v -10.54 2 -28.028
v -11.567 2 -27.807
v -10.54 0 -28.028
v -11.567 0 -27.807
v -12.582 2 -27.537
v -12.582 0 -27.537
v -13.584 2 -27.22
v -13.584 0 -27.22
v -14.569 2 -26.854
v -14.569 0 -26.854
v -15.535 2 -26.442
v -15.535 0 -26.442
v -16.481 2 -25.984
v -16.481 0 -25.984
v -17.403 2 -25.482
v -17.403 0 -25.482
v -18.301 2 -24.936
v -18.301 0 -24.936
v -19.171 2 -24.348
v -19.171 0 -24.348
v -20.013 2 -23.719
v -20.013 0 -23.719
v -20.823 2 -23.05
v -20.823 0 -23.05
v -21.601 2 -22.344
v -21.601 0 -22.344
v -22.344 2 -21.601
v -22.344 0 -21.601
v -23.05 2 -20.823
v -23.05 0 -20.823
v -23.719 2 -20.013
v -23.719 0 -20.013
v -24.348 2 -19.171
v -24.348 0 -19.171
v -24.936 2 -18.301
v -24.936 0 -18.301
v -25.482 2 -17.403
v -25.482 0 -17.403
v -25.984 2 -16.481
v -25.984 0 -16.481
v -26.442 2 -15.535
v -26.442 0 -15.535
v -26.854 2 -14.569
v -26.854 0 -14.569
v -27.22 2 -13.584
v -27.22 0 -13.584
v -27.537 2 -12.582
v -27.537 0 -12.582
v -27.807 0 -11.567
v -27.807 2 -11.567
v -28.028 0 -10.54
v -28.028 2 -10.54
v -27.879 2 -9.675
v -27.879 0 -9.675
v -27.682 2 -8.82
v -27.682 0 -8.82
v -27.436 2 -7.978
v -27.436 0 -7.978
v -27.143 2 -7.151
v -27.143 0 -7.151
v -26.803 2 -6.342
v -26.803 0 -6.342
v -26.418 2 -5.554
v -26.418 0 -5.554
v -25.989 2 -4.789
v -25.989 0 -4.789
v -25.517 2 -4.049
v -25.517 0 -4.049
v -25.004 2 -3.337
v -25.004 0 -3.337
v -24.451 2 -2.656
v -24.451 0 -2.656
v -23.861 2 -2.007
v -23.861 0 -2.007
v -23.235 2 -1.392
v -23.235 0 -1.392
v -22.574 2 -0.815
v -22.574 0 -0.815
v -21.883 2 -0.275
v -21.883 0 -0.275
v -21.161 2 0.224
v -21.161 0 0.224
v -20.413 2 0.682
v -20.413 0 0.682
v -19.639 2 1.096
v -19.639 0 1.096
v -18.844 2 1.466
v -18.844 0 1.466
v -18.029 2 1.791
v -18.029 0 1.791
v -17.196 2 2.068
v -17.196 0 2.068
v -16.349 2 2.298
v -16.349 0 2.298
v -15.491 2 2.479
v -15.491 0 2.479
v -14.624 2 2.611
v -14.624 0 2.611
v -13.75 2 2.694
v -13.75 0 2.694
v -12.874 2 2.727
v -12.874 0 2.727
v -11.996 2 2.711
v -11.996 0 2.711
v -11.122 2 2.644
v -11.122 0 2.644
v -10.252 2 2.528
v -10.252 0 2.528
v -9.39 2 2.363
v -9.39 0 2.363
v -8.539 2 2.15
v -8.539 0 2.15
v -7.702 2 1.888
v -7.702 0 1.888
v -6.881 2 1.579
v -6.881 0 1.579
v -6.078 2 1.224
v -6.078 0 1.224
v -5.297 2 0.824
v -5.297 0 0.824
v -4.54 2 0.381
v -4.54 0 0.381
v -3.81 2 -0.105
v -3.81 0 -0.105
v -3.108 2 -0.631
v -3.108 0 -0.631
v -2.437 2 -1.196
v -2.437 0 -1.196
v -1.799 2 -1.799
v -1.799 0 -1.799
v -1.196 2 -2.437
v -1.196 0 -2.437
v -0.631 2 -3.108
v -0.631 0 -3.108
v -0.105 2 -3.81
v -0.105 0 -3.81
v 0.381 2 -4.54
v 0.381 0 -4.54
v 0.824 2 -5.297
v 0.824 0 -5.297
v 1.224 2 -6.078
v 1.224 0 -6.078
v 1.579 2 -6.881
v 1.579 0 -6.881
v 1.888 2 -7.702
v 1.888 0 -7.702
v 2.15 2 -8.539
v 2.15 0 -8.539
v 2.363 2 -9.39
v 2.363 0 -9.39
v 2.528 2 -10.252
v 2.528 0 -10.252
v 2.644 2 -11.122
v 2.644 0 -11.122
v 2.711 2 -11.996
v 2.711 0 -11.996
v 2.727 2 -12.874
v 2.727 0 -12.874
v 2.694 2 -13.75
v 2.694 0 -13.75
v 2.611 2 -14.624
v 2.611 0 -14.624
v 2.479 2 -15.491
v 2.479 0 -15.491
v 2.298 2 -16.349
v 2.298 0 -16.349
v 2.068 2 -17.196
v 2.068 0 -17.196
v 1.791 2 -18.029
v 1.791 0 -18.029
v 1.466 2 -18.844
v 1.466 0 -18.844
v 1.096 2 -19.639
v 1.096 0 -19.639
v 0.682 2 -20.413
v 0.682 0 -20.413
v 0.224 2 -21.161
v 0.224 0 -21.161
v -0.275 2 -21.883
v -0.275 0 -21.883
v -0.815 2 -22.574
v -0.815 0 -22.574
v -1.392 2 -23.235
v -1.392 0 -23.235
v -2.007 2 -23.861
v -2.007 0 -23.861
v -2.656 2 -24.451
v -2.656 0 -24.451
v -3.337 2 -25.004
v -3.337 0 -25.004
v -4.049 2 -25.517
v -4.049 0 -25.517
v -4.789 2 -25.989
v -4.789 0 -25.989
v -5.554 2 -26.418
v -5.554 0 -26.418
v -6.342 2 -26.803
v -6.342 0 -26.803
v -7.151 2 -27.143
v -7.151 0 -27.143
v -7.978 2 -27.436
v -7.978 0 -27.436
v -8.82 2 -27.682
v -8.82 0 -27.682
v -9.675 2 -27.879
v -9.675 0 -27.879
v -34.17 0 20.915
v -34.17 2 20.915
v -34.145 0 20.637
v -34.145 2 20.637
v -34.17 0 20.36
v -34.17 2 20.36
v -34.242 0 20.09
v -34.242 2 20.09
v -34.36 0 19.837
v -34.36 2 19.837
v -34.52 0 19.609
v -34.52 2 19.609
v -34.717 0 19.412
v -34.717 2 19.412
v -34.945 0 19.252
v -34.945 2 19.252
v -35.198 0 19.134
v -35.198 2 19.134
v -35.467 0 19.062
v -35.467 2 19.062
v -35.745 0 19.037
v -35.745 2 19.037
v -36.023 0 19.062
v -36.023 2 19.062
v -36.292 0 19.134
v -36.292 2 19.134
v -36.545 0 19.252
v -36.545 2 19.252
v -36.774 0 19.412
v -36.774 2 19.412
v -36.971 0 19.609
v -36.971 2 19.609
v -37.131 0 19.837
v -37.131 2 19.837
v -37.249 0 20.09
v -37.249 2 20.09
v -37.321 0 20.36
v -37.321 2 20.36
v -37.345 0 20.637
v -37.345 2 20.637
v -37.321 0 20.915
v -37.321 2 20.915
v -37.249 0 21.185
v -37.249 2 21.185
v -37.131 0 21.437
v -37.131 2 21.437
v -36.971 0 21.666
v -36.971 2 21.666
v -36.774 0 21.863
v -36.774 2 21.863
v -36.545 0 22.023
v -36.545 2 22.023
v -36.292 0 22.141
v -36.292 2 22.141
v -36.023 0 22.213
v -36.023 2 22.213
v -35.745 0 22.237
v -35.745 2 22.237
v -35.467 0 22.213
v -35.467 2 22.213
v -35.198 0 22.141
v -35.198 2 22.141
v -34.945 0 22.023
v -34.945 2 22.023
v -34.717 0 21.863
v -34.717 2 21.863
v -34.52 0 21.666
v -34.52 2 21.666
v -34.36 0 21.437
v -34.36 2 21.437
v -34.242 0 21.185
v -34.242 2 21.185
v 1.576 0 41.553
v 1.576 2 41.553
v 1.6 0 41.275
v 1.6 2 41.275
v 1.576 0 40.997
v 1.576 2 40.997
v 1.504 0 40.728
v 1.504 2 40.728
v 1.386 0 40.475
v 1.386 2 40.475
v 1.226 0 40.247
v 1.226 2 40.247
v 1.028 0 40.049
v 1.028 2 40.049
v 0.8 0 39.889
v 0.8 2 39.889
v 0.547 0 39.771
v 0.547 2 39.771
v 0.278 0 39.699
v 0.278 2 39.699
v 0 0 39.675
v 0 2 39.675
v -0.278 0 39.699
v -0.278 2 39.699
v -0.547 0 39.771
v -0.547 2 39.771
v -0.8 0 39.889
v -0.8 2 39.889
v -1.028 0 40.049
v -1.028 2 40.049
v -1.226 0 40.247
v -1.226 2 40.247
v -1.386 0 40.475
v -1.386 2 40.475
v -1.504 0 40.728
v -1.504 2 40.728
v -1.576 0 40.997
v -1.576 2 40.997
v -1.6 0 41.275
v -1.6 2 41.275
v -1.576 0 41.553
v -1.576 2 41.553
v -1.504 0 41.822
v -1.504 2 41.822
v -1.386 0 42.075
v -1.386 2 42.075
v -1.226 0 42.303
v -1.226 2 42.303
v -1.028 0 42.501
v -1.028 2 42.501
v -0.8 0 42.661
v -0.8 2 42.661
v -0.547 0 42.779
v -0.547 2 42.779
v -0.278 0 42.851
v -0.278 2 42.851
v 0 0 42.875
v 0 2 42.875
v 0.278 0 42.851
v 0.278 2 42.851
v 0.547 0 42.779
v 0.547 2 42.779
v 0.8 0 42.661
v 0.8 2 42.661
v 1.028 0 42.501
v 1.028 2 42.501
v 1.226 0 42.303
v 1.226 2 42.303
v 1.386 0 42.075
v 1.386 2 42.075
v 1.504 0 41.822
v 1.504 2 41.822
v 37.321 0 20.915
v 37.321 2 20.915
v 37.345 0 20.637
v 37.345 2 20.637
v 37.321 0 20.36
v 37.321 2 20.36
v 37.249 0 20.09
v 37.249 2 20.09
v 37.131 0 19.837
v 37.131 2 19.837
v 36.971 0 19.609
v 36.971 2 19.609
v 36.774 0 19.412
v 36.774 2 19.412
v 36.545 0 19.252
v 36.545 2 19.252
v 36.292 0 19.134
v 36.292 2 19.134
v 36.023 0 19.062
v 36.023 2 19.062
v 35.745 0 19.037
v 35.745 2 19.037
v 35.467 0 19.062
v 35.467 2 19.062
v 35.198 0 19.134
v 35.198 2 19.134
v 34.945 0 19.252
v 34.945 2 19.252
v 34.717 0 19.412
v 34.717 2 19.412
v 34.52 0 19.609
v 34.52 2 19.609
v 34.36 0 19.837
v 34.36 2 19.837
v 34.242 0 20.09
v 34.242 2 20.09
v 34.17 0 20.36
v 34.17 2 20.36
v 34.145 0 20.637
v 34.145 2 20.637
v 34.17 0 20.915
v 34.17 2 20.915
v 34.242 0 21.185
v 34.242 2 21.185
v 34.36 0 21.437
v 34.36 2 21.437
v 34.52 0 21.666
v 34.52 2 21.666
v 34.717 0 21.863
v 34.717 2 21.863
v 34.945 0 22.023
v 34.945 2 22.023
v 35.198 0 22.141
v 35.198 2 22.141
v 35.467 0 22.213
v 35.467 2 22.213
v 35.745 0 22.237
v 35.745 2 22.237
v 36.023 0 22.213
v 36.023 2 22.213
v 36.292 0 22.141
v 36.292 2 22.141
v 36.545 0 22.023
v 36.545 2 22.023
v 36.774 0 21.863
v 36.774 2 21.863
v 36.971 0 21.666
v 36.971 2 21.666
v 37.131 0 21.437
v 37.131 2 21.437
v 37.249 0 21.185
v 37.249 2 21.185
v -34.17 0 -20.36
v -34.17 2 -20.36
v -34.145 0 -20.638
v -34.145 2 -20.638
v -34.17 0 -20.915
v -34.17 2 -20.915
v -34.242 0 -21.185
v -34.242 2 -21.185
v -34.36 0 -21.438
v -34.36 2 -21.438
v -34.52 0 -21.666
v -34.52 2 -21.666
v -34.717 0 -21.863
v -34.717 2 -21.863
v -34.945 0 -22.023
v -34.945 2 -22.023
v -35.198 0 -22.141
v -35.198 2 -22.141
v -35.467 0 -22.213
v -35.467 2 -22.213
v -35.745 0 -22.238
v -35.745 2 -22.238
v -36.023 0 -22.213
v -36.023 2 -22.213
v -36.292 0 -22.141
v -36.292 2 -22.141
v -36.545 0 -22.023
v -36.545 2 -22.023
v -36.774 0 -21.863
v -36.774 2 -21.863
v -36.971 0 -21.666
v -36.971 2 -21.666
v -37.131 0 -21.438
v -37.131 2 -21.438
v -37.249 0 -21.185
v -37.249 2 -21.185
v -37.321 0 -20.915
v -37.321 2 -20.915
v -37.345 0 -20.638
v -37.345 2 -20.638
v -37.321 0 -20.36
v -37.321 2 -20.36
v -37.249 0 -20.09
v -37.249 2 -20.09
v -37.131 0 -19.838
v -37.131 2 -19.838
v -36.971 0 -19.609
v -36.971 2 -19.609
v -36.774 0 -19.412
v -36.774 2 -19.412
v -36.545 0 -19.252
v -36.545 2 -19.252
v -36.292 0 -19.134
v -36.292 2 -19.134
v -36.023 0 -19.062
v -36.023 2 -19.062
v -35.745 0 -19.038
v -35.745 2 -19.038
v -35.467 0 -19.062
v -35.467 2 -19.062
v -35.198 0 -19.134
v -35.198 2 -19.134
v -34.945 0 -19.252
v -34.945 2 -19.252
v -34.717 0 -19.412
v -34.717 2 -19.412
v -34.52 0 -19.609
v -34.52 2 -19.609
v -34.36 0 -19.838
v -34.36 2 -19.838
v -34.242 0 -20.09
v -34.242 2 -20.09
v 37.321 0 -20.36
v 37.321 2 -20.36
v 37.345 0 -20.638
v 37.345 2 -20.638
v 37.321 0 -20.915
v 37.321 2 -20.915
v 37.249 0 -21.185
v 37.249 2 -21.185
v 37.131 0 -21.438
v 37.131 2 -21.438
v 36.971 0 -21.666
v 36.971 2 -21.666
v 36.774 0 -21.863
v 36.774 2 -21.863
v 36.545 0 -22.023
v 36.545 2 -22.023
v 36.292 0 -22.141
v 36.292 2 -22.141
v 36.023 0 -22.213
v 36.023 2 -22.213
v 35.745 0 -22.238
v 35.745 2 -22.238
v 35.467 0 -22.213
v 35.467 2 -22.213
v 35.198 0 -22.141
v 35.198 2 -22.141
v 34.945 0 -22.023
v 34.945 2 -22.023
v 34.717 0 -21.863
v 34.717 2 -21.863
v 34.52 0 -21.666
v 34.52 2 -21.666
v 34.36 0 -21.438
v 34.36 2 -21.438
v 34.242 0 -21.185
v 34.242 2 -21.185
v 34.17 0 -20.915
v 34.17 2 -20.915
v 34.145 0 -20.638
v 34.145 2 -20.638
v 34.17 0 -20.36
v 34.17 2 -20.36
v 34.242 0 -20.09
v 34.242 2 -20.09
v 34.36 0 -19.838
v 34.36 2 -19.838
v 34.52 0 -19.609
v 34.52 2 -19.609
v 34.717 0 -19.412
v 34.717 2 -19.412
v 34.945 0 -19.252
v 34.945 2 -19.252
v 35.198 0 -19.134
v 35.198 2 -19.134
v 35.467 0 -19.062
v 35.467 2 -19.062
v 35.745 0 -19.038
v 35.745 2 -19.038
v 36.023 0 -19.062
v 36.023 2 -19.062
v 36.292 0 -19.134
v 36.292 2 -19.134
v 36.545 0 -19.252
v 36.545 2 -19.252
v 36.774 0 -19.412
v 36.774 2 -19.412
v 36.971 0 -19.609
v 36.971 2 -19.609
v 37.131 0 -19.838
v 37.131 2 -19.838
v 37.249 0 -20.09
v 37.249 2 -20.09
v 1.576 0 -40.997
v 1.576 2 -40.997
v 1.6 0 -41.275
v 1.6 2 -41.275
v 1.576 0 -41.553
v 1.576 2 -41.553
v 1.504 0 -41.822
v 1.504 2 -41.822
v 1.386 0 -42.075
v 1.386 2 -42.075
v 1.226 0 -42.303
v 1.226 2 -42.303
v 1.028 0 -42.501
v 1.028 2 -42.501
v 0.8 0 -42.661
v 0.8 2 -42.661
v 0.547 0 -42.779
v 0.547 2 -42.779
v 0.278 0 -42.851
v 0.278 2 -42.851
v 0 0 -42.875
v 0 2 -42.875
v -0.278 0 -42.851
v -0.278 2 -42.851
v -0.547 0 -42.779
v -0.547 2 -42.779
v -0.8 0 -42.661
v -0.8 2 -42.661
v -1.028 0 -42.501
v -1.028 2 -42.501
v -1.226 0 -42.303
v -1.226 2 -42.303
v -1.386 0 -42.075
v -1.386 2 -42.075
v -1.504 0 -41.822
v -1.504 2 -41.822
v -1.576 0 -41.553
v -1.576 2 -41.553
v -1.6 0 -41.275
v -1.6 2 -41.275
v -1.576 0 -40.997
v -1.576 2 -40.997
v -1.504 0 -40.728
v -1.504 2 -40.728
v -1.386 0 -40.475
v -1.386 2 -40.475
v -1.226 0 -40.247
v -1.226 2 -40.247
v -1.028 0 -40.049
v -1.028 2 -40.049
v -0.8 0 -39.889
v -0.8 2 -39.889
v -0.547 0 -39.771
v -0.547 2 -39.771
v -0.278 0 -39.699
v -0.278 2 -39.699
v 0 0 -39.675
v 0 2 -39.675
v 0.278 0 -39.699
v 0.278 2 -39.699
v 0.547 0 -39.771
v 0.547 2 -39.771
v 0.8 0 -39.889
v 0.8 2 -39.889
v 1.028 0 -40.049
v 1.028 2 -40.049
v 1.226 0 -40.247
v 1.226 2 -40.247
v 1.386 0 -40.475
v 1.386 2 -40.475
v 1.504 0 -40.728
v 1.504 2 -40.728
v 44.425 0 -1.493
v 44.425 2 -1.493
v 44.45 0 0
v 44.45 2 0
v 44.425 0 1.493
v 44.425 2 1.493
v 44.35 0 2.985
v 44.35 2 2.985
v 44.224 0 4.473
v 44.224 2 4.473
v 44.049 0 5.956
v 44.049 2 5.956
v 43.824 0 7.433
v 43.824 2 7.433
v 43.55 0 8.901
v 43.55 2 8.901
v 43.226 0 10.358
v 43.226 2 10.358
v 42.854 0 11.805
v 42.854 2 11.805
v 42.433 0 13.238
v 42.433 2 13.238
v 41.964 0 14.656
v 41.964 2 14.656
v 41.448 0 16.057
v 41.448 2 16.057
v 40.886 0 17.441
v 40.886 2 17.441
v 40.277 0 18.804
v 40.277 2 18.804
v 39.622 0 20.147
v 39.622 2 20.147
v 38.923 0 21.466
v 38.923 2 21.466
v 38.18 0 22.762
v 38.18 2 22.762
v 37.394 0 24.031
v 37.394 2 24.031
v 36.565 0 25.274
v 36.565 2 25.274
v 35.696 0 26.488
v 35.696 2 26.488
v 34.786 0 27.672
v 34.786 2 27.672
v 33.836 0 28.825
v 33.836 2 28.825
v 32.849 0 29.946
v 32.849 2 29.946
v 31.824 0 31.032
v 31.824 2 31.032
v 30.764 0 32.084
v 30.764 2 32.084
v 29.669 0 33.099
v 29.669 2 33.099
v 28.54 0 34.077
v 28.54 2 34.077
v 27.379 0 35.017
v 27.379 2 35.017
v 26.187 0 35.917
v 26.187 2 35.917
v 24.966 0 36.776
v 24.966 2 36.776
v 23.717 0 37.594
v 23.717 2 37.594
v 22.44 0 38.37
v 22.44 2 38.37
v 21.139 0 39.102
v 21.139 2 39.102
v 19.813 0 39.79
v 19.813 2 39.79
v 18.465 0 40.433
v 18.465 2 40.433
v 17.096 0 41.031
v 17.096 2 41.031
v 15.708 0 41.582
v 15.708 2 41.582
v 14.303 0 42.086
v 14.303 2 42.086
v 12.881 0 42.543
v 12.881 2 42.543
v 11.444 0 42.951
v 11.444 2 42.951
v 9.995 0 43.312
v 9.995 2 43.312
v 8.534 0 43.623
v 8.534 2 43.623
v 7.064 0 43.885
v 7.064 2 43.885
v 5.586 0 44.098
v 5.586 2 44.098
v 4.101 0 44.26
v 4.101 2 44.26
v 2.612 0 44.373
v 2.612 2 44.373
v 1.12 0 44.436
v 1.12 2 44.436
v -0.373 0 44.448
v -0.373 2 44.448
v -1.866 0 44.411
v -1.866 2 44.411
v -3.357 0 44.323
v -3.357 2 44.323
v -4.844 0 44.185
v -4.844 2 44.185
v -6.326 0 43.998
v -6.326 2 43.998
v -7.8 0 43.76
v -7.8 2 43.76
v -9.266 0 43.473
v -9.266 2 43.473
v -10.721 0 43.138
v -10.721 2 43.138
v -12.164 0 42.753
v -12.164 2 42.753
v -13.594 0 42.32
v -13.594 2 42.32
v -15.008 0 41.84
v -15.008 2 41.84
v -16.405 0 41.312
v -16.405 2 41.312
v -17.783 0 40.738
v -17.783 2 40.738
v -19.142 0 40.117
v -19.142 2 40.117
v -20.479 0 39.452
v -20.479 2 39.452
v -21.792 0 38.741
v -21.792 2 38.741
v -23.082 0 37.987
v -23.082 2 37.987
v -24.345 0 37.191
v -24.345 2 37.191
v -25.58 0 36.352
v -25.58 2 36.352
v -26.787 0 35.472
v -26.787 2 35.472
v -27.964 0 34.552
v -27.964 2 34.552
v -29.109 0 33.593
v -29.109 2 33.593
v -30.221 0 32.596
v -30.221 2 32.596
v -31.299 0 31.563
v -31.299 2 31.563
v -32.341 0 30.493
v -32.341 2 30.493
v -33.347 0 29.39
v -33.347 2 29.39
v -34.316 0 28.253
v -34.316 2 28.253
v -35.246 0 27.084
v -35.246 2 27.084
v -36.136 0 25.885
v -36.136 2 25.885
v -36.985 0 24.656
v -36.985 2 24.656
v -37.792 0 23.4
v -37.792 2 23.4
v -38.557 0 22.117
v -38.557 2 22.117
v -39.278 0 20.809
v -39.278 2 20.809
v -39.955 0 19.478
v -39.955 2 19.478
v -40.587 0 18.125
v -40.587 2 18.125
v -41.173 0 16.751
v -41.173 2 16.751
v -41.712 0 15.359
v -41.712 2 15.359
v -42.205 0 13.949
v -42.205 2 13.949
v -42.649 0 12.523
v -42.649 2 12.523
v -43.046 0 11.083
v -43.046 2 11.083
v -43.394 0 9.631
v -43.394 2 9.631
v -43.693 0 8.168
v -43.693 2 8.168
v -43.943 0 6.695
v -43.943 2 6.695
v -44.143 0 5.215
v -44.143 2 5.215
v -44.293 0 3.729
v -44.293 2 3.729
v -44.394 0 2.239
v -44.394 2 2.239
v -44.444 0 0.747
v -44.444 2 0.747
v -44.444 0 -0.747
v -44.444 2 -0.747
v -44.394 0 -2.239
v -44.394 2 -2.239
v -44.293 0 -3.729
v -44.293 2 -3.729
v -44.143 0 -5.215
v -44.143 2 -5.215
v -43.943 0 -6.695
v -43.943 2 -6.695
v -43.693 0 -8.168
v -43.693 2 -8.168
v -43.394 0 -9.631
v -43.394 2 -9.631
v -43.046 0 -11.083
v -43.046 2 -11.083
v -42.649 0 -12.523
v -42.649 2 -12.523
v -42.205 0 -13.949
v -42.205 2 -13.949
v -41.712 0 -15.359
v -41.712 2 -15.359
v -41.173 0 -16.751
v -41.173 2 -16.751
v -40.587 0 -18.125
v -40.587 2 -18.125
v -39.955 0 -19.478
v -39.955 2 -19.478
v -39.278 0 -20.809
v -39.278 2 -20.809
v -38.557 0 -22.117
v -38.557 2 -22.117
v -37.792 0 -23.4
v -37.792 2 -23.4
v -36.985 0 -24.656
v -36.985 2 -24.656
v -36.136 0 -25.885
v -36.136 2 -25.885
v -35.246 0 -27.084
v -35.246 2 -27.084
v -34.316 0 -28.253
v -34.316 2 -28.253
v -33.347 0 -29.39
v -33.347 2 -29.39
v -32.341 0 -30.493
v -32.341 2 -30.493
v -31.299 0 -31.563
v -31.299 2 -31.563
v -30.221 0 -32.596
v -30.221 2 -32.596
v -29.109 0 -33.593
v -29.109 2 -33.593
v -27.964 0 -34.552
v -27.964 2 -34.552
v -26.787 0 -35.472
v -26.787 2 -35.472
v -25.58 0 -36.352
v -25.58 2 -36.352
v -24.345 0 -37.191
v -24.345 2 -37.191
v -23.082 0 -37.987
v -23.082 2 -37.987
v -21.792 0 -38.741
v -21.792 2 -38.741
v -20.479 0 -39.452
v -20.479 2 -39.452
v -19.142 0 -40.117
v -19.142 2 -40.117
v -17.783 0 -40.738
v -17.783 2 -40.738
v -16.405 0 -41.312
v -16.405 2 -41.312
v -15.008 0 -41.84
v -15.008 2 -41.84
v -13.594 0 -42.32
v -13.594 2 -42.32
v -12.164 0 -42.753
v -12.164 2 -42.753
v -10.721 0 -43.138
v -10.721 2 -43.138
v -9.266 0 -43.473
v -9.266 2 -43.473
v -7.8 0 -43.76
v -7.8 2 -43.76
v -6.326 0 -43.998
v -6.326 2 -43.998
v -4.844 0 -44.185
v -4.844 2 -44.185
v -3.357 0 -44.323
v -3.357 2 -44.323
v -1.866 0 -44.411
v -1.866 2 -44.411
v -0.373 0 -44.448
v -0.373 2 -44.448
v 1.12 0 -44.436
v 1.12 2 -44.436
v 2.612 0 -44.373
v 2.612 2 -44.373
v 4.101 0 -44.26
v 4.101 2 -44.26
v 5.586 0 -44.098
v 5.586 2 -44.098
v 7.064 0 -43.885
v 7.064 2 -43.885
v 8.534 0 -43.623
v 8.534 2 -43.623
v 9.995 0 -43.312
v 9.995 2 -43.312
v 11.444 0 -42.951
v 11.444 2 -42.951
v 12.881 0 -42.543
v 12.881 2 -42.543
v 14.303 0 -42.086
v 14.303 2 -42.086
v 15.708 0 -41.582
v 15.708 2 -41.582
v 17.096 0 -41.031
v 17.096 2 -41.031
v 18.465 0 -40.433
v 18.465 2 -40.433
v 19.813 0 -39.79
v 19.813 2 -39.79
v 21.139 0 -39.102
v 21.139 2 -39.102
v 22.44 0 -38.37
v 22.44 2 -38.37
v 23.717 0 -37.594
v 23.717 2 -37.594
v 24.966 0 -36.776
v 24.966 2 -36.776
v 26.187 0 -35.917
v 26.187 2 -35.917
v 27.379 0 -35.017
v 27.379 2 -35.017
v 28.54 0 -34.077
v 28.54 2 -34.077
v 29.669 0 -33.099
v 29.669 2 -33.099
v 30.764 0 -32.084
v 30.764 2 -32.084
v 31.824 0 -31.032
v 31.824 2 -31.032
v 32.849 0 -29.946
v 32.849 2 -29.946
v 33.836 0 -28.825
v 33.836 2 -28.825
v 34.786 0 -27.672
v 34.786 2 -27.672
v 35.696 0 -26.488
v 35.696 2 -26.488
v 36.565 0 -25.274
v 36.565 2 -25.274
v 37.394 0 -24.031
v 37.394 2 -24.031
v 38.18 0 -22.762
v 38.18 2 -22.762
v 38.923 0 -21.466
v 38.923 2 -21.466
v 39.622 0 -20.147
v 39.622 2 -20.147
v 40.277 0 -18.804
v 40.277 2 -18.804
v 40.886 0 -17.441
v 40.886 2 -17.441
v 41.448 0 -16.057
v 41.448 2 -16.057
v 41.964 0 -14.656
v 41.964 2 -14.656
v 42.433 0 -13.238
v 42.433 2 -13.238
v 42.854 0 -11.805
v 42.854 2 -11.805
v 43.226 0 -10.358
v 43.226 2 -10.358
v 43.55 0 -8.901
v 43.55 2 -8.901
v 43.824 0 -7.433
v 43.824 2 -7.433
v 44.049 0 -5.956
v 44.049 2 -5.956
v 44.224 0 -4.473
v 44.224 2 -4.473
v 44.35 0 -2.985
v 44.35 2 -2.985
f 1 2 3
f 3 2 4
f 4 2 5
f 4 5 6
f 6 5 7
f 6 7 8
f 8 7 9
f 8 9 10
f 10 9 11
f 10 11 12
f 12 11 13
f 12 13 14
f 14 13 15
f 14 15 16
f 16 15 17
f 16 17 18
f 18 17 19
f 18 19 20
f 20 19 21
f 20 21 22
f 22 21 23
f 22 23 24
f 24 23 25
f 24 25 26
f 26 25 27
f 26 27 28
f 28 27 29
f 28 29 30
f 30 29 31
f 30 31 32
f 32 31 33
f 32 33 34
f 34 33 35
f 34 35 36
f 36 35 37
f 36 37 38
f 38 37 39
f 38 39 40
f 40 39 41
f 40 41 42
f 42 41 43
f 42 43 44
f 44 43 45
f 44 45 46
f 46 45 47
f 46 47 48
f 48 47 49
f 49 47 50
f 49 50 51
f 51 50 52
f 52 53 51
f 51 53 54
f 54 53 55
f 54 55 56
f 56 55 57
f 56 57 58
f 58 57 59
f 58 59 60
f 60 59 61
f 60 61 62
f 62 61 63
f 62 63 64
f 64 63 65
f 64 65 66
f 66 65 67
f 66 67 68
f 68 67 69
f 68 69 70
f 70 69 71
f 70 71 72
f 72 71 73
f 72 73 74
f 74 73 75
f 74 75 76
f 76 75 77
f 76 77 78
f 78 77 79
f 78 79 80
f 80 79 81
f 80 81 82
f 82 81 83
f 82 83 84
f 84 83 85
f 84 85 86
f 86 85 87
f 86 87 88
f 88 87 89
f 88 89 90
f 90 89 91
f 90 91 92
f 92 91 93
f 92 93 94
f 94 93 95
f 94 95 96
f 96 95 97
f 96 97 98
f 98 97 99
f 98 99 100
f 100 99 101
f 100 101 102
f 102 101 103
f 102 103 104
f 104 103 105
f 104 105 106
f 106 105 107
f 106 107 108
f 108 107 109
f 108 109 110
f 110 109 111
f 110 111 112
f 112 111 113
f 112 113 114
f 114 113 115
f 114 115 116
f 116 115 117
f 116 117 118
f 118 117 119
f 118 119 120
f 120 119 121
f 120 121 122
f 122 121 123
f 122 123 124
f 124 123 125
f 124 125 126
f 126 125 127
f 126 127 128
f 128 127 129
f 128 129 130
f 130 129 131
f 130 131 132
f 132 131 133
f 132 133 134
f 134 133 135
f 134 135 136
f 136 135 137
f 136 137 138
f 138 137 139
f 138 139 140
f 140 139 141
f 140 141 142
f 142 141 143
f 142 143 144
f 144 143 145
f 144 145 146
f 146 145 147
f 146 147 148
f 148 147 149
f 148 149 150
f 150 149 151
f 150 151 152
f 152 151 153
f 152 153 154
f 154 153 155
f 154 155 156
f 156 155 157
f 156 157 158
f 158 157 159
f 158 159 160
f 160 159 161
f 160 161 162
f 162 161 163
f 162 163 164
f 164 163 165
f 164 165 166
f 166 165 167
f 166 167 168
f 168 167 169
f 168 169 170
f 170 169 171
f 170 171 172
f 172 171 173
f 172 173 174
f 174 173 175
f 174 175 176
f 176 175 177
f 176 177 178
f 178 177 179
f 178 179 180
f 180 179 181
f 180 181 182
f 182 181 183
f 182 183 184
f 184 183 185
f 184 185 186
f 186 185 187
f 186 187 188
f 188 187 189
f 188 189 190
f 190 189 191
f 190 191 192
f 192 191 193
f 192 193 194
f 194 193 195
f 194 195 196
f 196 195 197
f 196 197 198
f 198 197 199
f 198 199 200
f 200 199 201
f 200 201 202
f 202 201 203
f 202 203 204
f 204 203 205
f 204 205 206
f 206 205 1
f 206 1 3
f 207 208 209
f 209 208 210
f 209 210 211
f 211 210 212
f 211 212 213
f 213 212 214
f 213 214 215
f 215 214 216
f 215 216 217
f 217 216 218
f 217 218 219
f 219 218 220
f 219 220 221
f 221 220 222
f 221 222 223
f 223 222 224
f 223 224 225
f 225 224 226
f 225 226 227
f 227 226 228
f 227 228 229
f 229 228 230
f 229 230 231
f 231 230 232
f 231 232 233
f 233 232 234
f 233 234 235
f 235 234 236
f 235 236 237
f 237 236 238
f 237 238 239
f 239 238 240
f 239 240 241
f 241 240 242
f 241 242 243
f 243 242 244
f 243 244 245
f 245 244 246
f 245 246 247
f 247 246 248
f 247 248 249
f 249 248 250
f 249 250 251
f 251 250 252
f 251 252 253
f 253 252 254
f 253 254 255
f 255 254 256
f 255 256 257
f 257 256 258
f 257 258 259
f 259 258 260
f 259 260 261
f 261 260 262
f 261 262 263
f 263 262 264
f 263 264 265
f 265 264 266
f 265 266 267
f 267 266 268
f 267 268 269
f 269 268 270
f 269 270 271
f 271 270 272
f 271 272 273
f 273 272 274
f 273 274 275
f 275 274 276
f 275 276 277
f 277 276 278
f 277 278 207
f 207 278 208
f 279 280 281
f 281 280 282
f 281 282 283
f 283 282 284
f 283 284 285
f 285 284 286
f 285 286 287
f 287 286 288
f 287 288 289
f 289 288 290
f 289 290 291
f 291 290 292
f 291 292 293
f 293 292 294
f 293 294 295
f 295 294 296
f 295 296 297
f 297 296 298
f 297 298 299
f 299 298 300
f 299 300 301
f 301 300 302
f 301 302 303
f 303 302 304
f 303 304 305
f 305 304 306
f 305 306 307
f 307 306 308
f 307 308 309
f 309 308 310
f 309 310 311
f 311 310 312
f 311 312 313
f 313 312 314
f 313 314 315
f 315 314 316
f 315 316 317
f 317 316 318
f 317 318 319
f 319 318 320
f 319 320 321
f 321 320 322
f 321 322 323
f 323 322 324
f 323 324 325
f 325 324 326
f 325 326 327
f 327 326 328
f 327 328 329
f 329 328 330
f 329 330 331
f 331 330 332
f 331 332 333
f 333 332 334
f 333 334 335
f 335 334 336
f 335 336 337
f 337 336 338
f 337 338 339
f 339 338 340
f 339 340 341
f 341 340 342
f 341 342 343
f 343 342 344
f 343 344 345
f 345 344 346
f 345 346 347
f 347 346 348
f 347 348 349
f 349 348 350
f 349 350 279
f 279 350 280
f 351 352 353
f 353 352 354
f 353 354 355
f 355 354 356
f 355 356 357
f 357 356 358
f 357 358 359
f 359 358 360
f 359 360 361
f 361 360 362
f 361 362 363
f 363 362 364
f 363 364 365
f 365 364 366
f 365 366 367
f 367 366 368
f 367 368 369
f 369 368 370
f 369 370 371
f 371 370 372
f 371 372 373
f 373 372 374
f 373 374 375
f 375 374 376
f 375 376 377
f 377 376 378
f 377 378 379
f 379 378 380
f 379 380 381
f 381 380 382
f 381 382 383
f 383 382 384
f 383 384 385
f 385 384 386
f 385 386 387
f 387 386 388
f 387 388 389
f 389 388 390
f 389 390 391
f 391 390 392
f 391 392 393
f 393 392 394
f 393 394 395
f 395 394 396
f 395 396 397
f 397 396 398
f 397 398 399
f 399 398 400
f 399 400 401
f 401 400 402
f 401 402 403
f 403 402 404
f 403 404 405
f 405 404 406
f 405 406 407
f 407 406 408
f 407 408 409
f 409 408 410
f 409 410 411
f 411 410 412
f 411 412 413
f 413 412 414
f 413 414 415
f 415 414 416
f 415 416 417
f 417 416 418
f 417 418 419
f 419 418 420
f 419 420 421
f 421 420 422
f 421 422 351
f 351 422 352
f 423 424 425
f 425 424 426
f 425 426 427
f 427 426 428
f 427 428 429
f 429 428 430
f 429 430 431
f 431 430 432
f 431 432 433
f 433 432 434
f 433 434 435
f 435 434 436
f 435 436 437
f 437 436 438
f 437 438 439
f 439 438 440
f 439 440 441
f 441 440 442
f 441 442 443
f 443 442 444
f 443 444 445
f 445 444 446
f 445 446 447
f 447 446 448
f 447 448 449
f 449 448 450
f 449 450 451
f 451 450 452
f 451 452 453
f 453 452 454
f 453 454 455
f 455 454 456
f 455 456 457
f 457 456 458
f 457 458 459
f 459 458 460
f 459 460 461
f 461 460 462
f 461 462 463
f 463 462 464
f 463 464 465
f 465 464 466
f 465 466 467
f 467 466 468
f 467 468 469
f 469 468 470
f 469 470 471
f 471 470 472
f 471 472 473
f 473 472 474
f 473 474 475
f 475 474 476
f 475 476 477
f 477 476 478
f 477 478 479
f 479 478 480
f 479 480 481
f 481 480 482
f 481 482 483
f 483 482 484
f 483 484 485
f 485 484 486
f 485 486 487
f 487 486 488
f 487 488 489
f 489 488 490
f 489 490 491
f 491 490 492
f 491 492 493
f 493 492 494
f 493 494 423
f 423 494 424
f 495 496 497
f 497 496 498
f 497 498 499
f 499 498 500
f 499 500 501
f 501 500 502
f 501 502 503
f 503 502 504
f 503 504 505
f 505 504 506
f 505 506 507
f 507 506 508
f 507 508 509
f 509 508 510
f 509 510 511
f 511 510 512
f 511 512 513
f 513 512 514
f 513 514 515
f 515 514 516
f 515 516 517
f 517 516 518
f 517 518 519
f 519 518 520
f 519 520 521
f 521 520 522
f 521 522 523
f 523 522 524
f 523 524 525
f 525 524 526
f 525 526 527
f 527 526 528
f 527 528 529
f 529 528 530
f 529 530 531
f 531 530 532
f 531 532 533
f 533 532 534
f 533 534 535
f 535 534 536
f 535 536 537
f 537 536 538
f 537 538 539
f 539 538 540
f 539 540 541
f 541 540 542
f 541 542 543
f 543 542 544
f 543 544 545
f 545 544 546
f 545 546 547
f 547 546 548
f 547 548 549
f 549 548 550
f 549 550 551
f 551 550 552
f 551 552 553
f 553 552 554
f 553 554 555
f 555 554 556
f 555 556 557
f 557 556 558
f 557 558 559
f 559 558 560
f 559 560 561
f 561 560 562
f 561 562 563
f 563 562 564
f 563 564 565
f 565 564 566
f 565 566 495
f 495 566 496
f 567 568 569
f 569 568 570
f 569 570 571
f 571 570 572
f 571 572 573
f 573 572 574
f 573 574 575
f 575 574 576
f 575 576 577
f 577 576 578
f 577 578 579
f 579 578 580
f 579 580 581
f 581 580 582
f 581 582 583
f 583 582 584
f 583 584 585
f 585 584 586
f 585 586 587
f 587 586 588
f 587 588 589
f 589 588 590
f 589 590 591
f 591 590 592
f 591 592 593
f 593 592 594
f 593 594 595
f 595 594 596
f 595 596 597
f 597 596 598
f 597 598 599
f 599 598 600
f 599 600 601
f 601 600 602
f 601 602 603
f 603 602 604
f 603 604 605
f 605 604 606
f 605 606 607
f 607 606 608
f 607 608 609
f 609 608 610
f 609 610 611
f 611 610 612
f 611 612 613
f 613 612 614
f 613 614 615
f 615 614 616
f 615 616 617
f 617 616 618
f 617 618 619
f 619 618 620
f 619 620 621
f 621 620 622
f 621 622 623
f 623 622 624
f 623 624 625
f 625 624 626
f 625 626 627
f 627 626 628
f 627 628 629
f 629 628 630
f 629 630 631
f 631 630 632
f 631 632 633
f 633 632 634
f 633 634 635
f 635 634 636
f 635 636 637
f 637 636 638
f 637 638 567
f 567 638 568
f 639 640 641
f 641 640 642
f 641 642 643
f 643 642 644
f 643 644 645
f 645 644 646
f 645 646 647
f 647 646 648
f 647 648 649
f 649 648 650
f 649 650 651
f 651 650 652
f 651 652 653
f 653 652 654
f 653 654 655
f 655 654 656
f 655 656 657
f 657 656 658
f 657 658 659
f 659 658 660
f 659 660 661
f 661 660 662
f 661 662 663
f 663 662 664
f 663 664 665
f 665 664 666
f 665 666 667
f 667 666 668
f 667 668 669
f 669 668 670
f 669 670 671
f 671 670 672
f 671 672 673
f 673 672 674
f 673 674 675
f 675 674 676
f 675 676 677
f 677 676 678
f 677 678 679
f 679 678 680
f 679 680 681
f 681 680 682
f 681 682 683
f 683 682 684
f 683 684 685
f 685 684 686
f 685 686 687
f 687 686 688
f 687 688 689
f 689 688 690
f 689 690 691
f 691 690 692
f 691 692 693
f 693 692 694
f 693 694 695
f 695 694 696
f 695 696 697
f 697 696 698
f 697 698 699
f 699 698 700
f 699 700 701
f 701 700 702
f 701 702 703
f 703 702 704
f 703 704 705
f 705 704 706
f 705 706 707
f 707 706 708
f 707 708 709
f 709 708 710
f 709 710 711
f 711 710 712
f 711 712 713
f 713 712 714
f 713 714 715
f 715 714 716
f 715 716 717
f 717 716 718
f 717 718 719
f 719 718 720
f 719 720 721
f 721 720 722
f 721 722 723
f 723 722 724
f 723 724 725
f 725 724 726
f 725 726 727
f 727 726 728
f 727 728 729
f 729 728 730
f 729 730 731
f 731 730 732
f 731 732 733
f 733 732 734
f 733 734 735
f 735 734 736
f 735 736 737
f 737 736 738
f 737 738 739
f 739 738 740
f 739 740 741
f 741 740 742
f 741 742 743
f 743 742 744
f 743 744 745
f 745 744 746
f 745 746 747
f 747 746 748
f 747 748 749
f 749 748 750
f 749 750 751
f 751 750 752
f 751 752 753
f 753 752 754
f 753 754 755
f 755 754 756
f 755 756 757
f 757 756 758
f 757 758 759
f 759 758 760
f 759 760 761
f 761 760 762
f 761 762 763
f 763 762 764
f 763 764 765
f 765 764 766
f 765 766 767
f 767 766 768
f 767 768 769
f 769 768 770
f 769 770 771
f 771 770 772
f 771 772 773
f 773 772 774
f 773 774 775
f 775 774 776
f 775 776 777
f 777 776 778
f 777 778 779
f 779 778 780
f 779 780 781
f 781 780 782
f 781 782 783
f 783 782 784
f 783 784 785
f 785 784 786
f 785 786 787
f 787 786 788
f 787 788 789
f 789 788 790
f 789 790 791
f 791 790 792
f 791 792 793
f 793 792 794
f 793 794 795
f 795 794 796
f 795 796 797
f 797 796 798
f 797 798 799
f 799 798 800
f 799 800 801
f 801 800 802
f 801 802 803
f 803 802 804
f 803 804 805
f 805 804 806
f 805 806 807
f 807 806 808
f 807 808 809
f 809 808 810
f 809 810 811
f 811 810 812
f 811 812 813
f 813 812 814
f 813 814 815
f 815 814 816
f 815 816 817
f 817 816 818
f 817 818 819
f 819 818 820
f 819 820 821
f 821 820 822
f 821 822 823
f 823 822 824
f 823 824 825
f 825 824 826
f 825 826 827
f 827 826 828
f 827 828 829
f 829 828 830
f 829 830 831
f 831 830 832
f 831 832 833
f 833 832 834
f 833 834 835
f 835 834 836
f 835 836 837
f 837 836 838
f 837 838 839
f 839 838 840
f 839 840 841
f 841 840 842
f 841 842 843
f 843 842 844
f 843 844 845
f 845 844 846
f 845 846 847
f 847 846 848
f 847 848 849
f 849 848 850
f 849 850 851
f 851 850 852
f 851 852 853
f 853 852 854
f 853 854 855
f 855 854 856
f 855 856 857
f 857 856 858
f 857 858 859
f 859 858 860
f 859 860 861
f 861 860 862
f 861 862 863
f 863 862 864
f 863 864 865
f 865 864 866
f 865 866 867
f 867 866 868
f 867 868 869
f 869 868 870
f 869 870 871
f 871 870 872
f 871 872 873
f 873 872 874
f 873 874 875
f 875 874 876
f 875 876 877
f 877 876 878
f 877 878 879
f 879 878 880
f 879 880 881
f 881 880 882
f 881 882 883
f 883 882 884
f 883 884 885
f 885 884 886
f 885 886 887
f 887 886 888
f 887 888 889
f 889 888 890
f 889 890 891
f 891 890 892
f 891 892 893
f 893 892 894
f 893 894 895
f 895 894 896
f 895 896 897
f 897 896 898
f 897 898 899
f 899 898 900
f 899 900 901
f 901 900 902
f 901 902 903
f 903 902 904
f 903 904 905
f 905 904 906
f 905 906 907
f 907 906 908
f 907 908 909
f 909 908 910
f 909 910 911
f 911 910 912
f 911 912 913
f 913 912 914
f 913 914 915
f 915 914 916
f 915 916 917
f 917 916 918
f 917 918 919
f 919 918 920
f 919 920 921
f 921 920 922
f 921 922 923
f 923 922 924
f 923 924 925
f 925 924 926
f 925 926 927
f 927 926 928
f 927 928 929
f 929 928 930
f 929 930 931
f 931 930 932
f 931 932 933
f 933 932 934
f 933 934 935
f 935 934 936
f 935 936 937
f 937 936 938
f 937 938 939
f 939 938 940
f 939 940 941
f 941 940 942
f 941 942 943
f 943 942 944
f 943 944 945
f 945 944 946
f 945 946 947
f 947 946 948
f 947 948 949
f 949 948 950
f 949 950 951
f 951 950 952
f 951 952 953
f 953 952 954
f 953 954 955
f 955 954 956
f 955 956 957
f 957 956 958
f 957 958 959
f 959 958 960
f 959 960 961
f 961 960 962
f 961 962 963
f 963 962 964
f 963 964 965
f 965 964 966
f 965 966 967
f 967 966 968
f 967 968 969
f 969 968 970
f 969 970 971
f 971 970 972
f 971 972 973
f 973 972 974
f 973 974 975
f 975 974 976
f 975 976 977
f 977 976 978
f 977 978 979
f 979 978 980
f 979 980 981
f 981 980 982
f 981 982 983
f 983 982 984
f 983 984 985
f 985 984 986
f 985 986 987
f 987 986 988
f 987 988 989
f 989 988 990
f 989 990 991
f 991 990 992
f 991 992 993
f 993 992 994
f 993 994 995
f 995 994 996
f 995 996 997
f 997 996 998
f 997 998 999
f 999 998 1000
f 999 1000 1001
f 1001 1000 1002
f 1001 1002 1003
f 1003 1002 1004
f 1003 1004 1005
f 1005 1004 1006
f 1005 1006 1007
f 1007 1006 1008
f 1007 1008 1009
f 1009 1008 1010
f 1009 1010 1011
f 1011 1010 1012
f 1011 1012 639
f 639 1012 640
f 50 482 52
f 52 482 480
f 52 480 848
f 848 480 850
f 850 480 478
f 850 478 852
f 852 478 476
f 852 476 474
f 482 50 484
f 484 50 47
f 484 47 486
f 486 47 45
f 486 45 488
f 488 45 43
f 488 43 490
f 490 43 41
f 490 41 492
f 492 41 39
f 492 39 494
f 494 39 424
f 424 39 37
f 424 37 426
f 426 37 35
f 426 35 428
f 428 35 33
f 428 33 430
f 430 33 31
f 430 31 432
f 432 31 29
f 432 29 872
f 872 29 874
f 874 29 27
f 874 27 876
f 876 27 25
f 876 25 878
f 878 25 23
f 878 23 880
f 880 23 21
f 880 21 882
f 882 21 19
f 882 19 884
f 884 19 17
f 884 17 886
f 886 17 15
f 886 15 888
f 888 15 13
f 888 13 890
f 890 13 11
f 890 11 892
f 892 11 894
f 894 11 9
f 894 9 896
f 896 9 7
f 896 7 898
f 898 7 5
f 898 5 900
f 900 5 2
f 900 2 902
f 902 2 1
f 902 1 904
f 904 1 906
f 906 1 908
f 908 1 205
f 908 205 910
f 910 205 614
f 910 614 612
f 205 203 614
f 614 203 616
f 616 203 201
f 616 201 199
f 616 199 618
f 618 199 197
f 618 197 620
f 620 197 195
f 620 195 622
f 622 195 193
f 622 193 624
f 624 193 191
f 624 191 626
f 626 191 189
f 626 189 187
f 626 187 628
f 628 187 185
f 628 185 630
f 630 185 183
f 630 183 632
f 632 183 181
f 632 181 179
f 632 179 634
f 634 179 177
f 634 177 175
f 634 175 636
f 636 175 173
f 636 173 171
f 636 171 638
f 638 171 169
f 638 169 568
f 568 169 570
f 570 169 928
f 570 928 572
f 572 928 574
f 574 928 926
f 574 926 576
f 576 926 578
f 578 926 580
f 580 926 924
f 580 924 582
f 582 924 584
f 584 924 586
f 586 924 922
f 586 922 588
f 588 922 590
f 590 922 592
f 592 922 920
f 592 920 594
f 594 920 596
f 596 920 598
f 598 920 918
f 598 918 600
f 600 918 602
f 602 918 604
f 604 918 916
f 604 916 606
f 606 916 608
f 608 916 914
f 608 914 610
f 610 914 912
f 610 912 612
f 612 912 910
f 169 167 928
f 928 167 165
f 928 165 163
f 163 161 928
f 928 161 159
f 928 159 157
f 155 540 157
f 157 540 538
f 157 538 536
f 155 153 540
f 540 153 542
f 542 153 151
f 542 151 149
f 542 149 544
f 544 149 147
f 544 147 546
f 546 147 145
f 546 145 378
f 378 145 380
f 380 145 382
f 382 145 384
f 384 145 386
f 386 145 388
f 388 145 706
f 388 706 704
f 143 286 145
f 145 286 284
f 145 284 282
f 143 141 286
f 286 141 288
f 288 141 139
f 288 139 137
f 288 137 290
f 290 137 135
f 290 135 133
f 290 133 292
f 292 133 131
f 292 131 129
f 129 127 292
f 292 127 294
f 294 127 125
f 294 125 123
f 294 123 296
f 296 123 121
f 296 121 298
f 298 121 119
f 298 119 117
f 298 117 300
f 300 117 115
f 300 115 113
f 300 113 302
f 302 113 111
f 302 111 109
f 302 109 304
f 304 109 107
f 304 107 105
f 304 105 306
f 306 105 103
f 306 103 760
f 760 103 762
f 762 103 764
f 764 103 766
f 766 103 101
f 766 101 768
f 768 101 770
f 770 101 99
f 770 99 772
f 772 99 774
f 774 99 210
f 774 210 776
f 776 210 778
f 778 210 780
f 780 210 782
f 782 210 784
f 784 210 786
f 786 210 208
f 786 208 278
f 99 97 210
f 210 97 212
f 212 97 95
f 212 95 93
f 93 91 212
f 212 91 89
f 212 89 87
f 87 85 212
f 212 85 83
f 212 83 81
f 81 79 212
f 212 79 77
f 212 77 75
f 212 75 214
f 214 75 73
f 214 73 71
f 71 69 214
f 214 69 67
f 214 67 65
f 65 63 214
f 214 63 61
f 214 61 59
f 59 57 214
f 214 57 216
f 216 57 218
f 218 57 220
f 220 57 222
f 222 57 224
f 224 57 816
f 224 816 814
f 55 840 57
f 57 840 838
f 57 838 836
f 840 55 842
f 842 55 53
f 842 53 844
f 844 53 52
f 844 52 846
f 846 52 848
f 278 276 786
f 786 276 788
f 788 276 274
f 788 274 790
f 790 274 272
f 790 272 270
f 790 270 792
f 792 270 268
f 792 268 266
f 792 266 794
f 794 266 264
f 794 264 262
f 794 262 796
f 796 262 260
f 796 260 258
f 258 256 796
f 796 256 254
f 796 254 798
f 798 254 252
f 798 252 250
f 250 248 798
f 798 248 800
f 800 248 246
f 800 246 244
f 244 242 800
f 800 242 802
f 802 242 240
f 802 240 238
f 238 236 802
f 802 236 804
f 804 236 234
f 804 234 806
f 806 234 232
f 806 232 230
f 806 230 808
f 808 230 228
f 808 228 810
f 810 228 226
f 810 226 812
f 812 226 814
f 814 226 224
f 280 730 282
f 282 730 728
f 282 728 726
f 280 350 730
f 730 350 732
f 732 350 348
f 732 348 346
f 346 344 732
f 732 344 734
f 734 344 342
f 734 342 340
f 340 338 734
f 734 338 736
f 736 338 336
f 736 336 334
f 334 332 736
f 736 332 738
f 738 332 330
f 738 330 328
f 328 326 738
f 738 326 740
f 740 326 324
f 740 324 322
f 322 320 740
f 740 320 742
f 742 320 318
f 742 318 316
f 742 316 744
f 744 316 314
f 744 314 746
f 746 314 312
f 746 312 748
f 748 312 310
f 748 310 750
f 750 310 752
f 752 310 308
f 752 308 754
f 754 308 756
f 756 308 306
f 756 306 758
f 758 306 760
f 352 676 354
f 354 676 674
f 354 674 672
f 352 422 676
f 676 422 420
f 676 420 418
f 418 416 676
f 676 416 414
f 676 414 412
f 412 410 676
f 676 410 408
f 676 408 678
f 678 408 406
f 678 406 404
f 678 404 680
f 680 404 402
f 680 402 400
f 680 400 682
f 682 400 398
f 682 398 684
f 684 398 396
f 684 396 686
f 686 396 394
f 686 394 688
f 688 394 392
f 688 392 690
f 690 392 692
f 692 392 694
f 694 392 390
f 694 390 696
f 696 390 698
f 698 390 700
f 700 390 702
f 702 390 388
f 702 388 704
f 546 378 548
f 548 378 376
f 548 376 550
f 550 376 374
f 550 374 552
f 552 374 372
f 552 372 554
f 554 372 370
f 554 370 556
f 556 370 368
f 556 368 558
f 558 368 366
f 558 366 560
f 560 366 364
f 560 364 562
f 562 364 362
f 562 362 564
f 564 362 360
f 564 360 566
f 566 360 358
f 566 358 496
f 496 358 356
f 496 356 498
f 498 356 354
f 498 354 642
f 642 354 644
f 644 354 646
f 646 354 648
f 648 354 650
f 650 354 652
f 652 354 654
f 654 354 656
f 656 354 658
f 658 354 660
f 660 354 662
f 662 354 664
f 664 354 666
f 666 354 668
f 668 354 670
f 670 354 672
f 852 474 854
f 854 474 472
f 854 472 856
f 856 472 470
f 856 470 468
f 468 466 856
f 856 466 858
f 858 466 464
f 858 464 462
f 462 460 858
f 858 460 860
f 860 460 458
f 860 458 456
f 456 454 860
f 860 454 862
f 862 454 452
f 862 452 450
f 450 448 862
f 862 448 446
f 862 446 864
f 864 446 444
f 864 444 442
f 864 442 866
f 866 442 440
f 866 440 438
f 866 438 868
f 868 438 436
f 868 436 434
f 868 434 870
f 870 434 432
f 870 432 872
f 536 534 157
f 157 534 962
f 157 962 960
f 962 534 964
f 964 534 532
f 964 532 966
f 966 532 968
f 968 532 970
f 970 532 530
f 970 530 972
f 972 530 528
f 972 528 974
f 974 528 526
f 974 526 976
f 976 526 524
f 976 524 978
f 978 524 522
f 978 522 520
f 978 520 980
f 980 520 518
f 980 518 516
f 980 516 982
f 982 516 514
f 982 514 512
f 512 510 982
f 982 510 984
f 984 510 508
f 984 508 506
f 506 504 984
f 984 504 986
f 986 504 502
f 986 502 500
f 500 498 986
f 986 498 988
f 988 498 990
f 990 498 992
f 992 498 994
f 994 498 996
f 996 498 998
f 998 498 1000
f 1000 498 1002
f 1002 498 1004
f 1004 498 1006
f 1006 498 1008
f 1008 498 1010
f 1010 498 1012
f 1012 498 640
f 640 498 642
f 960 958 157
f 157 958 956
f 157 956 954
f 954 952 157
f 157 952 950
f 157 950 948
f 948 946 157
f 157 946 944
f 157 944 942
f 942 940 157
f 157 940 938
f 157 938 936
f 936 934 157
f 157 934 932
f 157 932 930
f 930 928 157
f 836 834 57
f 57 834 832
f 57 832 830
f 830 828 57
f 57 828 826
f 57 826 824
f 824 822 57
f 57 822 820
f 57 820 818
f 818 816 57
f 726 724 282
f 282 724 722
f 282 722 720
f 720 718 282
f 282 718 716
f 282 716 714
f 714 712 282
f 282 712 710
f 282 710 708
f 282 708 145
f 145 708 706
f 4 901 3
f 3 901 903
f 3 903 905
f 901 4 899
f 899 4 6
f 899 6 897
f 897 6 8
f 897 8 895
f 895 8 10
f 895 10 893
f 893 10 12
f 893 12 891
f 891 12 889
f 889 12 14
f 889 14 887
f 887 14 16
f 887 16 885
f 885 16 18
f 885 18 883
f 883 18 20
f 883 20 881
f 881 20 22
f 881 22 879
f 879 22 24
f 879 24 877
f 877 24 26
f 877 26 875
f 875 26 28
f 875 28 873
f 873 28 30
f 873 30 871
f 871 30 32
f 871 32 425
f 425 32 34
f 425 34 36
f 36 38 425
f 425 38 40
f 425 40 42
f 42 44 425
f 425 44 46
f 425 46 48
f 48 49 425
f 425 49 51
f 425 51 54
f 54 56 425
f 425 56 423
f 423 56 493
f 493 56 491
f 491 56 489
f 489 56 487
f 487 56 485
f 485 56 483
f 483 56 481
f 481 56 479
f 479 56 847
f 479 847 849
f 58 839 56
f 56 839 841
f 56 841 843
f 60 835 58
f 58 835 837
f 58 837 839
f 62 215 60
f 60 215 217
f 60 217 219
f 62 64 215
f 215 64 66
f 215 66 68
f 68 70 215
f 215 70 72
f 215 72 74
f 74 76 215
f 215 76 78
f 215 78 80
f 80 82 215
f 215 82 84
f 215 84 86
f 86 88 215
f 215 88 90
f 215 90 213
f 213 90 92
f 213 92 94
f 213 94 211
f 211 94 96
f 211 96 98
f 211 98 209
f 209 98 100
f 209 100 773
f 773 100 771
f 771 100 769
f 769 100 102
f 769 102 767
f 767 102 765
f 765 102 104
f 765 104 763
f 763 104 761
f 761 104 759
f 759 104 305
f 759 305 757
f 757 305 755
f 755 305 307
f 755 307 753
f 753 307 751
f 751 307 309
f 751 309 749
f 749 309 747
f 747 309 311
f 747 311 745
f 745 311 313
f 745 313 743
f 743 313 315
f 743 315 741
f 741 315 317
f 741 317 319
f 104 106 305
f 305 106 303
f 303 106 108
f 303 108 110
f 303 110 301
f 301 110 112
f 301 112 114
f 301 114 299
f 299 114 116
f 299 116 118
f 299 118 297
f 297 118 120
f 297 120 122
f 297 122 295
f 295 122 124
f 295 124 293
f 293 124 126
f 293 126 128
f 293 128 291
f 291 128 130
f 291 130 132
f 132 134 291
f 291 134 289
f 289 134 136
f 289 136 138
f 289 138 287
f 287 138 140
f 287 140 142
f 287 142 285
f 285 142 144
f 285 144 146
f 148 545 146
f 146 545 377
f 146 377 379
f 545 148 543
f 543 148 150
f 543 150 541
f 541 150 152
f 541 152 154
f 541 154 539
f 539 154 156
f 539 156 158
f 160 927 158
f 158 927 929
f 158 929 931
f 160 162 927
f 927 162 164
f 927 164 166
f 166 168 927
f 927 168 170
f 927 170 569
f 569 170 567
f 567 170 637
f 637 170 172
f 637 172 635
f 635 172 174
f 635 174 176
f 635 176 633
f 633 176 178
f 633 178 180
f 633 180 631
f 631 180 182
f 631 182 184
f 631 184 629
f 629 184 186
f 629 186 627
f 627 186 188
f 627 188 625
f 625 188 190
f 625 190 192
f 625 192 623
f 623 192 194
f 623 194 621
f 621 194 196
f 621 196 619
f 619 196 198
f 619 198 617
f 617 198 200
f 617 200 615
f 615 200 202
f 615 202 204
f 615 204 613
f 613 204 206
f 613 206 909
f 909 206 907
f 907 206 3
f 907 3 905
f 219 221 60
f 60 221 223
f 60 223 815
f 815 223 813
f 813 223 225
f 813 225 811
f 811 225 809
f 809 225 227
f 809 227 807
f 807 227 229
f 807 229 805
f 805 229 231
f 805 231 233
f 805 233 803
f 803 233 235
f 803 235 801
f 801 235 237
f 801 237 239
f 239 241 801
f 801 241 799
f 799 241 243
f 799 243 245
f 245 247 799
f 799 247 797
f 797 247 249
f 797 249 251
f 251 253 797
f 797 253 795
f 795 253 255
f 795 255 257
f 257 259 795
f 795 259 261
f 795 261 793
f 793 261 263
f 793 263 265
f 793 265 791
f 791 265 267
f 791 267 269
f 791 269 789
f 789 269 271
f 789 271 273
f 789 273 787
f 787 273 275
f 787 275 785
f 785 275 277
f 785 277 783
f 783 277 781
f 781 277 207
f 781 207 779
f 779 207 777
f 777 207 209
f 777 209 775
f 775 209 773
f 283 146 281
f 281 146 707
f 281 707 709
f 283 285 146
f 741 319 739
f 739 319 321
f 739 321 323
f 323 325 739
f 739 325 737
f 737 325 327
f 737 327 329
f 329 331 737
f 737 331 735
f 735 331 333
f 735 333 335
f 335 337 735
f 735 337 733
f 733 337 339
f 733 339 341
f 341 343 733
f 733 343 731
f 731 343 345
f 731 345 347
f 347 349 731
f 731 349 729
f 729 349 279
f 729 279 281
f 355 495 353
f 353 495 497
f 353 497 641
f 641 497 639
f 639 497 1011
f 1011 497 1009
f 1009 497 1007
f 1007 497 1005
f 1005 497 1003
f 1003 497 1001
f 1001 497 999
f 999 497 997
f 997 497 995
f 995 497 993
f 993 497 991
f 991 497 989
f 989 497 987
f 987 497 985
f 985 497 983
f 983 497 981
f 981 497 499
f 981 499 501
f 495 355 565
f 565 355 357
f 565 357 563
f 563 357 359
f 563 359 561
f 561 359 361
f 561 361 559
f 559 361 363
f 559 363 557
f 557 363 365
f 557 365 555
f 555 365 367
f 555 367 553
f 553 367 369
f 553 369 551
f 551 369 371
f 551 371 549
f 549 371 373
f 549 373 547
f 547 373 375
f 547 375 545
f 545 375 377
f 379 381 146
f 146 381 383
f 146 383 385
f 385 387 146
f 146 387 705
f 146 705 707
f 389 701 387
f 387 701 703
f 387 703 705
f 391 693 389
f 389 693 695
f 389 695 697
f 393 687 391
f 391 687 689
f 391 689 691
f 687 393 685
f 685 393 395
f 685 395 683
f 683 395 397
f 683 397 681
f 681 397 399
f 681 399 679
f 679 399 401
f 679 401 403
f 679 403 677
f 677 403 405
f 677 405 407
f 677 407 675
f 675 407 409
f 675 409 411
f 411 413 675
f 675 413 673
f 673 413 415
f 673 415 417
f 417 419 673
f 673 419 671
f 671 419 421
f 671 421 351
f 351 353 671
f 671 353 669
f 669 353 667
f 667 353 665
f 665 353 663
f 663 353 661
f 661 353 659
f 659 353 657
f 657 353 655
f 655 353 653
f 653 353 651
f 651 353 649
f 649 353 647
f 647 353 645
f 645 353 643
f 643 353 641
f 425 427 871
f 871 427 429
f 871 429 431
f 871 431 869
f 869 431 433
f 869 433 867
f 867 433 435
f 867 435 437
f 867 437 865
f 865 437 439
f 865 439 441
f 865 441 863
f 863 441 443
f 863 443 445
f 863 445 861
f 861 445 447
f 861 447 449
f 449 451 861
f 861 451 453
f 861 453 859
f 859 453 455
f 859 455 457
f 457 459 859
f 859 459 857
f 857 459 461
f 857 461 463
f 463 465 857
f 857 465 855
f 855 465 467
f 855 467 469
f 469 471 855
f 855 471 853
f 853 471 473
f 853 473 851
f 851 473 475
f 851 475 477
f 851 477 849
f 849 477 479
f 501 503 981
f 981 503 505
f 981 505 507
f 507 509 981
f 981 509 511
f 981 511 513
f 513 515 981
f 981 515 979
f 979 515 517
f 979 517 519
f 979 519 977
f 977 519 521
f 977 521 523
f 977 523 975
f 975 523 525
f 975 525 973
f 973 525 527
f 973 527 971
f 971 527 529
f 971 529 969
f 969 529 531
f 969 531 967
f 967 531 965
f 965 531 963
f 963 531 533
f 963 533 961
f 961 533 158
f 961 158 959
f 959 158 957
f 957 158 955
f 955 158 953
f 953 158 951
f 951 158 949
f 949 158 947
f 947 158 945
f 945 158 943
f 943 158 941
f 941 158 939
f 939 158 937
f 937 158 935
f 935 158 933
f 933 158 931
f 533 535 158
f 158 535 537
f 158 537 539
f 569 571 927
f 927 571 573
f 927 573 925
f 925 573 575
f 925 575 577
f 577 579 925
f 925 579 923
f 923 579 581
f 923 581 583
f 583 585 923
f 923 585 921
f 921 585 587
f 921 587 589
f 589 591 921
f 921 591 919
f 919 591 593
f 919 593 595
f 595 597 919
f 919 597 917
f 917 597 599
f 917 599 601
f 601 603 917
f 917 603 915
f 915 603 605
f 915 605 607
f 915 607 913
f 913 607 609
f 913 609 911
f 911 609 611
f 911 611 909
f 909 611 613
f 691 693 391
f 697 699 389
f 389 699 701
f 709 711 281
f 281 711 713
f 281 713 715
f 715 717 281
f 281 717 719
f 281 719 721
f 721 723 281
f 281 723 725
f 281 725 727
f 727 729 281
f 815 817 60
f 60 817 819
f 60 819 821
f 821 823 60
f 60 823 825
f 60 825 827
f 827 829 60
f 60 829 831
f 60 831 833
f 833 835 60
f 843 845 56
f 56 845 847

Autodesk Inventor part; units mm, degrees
ref_plane "YZ Plane" through (0, 0, 0) normal (1, 0, 0) x (0, 1, 0)
ref_plane "XZ Plane" through (0, 0, 0) normal (0, 1, 0) x (-1, 0, 0)
ref_plane "XY Plane" through (0, 0, 0) normal (0, 0, 1) x (1, 0, 0)
sketch "Sketch1" plane through (0, 0, 0) normal (0, 1, 0) x (-1, 0, 0)
  circle A0 centre (0, 0) radius 44.45
  circle A1 centre (0, -41.275) radius 1.6
  circle A2 centre (35.7452, -20.6375) radius 1.6
  circle A3 centre (-35.7452, -20.6375) radius 1.6
  circle A4 centre (0, 41.275) radius 1.6
  circle A5 centre (35.7452, 20.6375) radius 1.6
  circle A6 centre (-35.7452, 20.6375) radius 1.6
  arc A7 (28.0281, -10.5398) -> (10.5398, -28.0281) centre (12.7279, -12.7279) ccw
  arc A8 (10.5398, -28.0281) -> (28.0281, -10.5398) centre (6.4322, -6.4322) ccw
extrude "Extrusion1" add sketch "Sketch1" along normal blind 2
properties part number "Dremel_Jig_Internall"
